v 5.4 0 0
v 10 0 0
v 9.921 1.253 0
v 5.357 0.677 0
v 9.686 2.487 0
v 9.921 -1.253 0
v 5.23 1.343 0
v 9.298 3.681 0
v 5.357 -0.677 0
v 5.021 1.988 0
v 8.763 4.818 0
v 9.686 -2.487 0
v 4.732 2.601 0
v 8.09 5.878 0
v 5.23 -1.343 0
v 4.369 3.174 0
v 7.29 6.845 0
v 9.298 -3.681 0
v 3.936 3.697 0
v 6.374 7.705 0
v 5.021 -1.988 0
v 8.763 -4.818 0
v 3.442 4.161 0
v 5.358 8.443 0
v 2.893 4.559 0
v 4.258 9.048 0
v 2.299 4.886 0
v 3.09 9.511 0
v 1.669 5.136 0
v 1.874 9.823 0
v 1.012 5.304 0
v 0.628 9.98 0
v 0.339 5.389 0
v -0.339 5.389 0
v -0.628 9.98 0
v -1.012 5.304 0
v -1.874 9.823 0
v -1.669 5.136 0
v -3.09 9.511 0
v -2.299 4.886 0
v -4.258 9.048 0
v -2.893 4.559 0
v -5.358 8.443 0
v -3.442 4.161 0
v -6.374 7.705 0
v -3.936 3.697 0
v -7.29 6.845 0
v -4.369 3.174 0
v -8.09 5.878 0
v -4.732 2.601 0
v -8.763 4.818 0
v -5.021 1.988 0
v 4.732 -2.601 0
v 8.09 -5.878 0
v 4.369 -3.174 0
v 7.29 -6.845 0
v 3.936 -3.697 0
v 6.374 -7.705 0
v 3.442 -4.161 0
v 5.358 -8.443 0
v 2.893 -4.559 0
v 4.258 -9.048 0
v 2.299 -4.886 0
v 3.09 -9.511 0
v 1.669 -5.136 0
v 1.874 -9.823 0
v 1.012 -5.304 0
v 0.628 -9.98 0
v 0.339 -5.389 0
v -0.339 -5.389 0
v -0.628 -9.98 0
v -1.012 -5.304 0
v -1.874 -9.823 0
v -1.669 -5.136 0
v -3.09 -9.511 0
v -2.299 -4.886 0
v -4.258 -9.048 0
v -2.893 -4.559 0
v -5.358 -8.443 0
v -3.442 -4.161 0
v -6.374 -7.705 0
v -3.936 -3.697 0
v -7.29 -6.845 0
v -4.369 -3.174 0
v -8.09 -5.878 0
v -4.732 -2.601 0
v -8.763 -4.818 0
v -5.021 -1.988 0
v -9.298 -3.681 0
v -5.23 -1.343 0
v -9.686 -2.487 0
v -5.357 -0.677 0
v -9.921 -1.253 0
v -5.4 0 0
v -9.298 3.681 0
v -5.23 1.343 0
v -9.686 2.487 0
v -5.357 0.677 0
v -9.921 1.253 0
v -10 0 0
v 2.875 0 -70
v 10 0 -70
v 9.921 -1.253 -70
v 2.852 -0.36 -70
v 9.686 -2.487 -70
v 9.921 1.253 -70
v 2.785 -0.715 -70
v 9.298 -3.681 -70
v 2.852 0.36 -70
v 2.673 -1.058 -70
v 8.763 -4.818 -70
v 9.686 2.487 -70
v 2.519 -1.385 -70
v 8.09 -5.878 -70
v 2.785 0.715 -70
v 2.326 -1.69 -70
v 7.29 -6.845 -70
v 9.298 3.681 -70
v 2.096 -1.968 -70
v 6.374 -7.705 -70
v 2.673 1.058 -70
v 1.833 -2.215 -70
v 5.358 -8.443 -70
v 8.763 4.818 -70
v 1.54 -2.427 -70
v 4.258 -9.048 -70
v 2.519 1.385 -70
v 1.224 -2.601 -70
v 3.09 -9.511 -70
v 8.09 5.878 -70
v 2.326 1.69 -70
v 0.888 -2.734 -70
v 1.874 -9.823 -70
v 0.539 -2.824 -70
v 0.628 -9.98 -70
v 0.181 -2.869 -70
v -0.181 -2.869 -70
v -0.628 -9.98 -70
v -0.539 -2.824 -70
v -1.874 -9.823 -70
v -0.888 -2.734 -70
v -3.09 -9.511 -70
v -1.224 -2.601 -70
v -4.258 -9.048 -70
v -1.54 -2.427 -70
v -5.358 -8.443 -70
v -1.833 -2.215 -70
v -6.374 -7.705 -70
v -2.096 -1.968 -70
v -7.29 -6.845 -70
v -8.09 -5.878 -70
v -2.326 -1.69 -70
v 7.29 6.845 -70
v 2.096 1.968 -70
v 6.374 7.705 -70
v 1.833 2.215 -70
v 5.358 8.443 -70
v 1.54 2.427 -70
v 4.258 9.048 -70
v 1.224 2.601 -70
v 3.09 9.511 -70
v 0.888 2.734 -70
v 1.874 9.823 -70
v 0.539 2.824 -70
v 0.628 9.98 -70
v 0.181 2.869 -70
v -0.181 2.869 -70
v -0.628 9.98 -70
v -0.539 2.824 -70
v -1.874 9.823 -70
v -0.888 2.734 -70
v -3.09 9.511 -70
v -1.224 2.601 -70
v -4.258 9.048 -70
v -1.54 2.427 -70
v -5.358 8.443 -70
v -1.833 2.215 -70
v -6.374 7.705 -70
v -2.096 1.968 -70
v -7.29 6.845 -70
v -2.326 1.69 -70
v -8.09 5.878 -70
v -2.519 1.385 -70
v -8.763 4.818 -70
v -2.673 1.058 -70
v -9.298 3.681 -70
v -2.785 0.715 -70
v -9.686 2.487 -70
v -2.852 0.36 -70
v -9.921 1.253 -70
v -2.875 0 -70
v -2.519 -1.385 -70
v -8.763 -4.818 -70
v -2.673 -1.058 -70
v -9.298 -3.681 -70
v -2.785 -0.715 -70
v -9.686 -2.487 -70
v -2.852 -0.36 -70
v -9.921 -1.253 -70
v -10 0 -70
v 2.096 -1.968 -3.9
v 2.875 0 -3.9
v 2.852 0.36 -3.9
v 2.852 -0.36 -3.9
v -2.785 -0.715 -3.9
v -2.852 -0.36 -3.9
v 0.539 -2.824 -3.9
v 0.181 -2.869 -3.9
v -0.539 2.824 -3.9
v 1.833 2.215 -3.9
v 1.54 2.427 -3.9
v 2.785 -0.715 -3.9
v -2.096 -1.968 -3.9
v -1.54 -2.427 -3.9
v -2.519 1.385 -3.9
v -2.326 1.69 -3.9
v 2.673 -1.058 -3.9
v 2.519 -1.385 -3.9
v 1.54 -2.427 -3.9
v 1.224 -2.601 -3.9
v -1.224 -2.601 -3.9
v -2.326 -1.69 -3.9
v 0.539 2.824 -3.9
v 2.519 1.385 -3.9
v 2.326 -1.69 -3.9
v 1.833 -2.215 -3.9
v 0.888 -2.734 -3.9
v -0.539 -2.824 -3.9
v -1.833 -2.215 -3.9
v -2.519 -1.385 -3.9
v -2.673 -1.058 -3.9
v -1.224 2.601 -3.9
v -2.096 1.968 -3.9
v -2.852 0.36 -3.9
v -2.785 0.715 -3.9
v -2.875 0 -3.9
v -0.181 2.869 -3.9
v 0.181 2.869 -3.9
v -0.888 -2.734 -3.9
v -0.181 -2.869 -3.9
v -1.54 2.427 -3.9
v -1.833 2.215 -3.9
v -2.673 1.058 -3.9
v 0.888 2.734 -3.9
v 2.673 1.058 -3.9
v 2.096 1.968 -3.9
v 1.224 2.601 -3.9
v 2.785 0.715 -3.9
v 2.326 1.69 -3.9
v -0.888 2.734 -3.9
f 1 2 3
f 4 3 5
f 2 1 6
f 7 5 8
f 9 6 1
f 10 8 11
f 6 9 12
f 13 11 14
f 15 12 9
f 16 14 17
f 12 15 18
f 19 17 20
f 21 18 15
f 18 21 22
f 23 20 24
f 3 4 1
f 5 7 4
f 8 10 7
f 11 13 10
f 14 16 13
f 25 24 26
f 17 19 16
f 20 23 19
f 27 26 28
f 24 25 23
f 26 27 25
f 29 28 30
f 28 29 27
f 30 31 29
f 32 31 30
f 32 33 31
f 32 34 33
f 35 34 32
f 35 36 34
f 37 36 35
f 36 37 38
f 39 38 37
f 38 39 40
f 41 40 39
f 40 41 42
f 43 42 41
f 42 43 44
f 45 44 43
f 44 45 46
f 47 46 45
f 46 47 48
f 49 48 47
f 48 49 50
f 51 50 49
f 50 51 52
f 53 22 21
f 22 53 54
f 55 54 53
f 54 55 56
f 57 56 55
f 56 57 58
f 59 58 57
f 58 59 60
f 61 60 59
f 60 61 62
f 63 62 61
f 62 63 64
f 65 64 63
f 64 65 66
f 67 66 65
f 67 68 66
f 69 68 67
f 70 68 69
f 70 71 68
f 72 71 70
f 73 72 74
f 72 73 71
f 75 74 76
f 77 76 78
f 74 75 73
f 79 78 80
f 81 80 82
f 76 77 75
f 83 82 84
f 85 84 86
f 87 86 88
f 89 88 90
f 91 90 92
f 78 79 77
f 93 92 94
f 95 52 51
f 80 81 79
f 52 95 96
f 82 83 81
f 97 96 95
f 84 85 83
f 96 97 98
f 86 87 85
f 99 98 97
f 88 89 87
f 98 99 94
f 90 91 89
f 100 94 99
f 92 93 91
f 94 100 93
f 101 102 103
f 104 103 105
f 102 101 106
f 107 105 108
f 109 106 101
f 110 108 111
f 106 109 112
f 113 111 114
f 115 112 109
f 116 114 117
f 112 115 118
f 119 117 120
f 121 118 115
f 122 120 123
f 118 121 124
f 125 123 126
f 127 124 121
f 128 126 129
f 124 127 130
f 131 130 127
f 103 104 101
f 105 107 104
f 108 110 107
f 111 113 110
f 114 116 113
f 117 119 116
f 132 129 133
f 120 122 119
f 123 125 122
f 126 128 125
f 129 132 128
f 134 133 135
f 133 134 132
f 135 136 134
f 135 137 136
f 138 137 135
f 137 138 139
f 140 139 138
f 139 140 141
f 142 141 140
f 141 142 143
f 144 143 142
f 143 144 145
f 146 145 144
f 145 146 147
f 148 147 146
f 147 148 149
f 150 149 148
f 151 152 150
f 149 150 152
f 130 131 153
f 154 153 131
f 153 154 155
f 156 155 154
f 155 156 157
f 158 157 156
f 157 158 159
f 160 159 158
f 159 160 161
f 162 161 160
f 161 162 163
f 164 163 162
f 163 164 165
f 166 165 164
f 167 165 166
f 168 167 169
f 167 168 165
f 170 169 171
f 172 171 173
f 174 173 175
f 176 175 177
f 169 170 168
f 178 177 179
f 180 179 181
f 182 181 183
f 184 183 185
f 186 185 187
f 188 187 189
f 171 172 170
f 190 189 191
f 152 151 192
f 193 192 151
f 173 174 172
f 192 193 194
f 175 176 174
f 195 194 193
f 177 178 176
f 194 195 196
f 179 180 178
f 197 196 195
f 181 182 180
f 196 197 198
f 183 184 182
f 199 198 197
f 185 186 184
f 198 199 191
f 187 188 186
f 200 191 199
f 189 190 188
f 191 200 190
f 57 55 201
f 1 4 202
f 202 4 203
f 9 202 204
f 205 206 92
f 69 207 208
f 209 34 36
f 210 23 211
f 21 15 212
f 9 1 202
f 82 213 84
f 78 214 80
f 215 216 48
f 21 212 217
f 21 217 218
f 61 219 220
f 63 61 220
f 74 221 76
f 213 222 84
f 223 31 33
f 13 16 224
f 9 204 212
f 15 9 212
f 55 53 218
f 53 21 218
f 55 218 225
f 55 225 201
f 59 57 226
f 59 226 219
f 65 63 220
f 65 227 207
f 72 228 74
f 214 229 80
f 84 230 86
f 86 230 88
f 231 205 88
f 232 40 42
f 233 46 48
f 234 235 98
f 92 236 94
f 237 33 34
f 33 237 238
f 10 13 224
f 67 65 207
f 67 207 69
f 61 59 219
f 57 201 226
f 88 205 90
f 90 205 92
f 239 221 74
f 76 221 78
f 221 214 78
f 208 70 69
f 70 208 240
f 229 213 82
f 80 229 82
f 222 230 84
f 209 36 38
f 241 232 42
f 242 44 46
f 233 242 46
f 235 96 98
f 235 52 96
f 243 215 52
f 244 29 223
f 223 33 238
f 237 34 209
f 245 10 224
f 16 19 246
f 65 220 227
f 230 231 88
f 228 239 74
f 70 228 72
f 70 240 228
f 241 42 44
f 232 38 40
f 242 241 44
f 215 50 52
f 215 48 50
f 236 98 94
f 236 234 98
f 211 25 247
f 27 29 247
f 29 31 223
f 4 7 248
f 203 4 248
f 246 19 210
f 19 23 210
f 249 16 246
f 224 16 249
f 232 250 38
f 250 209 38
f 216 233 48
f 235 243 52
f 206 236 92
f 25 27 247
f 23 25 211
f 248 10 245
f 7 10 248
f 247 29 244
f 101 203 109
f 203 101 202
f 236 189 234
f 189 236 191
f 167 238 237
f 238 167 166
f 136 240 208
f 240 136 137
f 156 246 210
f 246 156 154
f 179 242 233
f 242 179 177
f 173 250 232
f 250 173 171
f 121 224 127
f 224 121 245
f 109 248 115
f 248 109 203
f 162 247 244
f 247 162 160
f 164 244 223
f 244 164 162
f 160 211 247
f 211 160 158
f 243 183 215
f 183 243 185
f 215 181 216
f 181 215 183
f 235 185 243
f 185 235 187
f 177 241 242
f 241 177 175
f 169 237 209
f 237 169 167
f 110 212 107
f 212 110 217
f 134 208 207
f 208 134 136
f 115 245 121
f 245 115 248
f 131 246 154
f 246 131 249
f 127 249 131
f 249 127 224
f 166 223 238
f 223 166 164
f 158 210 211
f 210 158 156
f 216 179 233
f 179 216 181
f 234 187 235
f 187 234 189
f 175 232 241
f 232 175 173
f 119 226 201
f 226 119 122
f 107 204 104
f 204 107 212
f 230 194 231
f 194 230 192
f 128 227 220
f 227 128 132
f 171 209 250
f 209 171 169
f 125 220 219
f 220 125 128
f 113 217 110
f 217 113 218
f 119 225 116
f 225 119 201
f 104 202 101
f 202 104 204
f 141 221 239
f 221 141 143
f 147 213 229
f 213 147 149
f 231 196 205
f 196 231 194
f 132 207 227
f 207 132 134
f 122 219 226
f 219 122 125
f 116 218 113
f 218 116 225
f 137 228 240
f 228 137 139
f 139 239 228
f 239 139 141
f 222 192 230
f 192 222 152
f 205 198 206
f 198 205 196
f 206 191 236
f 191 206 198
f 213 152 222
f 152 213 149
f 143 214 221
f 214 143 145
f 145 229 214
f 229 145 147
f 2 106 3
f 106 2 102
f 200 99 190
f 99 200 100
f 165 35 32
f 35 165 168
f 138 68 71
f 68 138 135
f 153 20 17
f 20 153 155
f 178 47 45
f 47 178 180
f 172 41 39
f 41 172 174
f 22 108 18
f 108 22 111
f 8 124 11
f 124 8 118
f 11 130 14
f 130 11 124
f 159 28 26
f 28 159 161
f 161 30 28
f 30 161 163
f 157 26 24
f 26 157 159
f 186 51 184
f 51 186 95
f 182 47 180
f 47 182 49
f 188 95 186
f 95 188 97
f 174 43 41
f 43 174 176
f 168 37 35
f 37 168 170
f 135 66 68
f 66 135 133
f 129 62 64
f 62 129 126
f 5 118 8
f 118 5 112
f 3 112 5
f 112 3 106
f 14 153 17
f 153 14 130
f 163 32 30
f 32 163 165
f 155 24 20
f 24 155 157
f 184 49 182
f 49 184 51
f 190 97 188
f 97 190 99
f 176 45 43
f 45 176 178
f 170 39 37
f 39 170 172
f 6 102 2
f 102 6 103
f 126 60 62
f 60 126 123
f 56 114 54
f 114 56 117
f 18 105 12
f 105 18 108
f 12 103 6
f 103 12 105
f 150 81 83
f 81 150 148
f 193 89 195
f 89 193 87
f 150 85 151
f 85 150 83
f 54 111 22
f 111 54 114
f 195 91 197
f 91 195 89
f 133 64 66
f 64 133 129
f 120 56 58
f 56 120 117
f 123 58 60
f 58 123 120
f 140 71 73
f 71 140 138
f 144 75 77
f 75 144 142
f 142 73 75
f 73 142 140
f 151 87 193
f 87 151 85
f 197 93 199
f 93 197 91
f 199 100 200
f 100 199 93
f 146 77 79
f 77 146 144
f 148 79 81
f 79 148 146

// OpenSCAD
$fn = 50;


difference() {
	union() {
		translate(v = [0, 0, -70.0000000000]) {
			cylinder(h = 70, r = 10.0000000000);
		}
	}
	union() {
		translate(v = [0, 0, 0]) {
			rotate(a = [0, 0, 0]) {
				difference() {
					union() {
						#translate(v = [0, 0, -70.0000000000]) {
							cylinder(h = 70, r = 2.6000000000);
						}
						#translate(v = [0, 0, -3.9000000000]) {
							cylinder(h = 3.9000000000, r = 10.0000000000, r1 = 2.8750000000, r2 = 5.4000000000);
						}
						#translate(v = [0, 0, -70.0000000000]) {
							cylinder(h = 70, r = 2.8750000000);
						}
						#translate(v = [0, 0, -70.0000000000]) {
							cylinder(h = 70, r = 2.6000000000);
						}
					}
					union();
				}
			}
		}
	}
}
